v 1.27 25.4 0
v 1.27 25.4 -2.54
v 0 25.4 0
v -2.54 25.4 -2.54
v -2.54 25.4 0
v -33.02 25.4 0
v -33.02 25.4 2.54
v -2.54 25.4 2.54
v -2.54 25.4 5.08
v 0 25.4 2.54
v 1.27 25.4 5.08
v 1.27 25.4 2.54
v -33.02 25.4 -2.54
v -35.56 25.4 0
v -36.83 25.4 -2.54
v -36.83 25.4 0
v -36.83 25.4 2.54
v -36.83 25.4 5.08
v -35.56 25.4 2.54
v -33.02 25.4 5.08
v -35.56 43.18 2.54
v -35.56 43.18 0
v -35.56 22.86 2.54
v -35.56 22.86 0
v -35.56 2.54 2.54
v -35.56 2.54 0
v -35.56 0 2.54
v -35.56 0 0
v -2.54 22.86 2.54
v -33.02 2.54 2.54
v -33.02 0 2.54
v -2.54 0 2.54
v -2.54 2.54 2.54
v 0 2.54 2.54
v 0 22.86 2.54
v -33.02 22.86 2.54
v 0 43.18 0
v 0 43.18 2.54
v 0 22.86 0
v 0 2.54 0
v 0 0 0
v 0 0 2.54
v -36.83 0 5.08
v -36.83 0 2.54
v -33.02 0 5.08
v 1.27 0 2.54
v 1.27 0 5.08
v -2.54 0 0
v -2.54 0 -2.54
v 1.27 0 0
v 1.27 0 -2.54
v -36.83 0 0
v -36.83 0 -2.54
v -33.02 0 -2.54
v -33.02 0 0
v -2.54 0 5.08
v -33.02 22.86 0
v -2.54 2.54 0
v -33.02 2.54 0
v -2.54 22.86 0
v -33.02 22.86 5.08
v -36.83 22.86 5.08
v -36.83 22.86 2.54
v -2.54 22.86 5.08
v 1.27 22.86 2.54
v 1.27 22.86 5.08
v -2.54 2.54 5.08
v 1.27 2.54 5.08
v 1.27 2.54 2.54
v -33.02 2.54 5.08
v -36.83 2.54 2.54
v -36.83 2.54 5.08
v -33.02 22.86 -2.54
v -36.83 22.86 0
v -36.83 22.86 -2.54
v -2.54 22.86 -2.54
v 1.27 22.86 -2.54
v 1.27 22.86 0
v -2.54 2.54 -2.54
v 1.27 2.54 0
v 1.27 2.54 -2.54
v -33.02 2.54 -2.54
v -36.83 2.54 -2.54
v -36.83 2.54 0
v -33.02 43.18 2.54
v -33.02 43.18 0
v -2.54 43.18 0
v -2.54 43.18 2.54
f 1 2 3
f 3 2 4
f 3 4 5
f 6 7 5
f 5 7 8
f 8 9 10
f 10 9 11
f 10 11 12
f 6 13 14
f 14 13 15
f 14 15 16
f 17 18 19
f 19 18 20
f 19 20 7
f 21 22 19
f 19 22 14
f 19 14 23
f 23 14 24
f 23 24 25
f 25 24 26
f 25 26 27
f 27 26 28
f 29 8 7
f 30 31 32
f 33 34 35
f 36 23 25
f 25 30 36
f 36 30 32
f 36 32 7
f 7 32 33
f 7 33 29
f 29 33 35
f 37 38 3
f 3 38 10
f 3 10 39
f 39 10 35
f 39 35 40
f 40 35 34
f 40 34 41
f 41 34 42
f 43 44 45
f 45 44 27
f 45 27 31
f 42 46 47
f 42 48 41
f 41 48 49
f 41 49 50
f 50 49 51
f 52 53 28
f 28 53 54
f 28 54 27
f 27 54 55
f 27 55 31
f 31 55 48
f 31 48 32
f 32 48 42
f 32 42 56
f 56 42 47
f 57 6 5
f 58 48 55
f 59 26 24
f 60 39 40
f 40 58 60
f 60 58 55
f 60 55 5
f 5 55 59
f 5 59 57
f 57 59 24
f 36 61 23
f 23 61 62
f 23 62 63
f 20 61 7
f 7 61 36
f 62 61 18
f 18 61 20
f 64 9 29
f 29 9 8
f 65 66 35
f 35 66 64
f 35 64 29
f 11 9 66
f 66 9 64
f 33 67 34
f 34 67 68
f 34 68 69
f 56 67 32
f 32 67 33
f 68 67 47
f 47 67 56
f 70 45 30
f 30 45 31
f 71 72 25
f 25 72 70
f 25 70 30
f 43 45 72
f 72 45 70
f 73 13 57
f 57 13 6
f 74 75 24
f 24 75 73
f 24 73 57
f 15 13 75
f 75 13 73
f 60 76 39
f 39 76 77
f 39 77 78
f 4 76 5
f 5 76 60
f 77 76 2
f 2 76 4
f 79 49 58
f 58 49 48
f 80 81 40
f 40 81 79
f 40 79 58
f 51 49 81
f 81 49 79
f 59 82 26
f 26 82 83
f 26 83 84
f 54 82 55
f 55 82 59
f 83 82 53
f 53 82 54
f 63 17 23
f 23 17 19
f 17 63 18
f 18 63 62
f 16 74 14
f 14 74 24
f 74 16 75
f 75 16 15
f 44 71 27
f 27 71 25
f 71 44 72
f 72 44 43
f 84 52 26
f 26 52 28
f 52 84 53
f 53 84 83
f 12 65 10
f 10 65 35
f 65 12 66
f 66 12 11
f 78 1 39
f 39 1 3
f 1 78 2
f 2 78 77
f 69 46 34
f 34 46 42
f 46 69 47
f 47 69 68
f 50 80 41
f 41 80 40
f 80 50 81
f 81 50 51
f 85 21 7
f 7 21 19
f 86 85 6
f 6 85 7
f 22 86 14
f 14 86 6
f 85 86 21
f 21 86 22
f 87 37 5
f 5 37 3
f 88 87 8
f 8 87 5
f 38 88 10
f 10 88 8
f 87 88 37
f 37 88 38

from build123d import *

# Parameters (mm, degrees)
SKETCH1_W           = 35.56
SKETCH1_H           = 25.4
BOSS_EXTRUDE1_DEPTH = 2.54
SKETCH2_W           = 2.54
SKETCH2_H           = 2.54
BOSS_EXTRUDE2_DEPTH = 2.54
SKETCH4_W           = 2.54
SKETCH4_H           = 2.54
BOSS_EXTRUDE4_DEPTH = 1.27
SKETCH5_W           = 2.54
SKETCH5_H           = 2.54
BOSS_EXTRUDE5_DEPTH = 17.78


with BuildPart() as part:
    # Sketch1 → Boss-Extrude1 (new body)
    with BuildSketch(Plane.XY):
        with Locations((-17.78, 12.7)):
            Rectangle(SKETCH1_W, SKETCH1_H)
    extrude(amount=BOSS_EXTRUDE1_DEPTH)

    # Sketch2 → Boss-Extrude2 (add)
    with BuildSketch(Plane.XY.offset(2.54)):
        with Locations((-34.29, 24.13)):
            Rectangle(SKETCH2_W, SKETCH2_H)
        with Locations((-1.27, 24.13)):
            Rectangle(SKETCH2_W, SKETCH2_H)
        with Locations((-1.27, 1.27)):
            Rectangle(SKETCH2_W, SKETCH2_H)
        with Locations((-34.29, 1.27)):
            Rectangle(SKETCH2_W, SKETCH2_H)
    boss_extrude2 = extrude(amount=BOSS_EXTRUDE2_DEPTH)

    # Mirror1: Boss-Extrude2 across plane
    add(boss_extrude2.mirror(Plane.XY.offset(1.27)))

    # Sketch4 → Boss-Extrude4 (add)
    with BuildSketch(Plane.ZY.offset(35.56)):
        with Locations((3.81, 24.13)):
            Rectangle(SKETCH4_W, SKETCH4_H)
        with Locations((-1.27, 24.13)):
            Rectangle(SKETCH4_W, SKETCH4_H)
        with Locations((3.81, 1.27)):
            Rectangle(SKETCH4_W, SKETCH4_H)
        with Locations((-1.27, 1.27)):
            Rectangle(SKETCH4_W, SKETCH4_H)
    boss_extrude4 = extrude(amount=BOSS_EXTRUDE4_DEPTH)

    # Mirror2: Boss-Extrude4 across plane
    add(boss_extrude4.mirror(Plane.ZY.offset(17.78)))

    # Sketch5 → Boss-Extrude5 (add)
    with BuildSketch(Plane(origin=(0, 25.4, 0), x_dir=(1, 0, 0), z_dir=(0, 1, 0))):
        with Locations((-34.29, -1.27)):
            Rectangle(SKETCH5_W, SKETCH5_H)
        with Locations((-1.27, -1.27)):
            Rectangle(SKETCH5_W, SKETCH5_H)
    extrude(amount=BOSS_EXTRUDE5_DEPTH)


solid = part.part
